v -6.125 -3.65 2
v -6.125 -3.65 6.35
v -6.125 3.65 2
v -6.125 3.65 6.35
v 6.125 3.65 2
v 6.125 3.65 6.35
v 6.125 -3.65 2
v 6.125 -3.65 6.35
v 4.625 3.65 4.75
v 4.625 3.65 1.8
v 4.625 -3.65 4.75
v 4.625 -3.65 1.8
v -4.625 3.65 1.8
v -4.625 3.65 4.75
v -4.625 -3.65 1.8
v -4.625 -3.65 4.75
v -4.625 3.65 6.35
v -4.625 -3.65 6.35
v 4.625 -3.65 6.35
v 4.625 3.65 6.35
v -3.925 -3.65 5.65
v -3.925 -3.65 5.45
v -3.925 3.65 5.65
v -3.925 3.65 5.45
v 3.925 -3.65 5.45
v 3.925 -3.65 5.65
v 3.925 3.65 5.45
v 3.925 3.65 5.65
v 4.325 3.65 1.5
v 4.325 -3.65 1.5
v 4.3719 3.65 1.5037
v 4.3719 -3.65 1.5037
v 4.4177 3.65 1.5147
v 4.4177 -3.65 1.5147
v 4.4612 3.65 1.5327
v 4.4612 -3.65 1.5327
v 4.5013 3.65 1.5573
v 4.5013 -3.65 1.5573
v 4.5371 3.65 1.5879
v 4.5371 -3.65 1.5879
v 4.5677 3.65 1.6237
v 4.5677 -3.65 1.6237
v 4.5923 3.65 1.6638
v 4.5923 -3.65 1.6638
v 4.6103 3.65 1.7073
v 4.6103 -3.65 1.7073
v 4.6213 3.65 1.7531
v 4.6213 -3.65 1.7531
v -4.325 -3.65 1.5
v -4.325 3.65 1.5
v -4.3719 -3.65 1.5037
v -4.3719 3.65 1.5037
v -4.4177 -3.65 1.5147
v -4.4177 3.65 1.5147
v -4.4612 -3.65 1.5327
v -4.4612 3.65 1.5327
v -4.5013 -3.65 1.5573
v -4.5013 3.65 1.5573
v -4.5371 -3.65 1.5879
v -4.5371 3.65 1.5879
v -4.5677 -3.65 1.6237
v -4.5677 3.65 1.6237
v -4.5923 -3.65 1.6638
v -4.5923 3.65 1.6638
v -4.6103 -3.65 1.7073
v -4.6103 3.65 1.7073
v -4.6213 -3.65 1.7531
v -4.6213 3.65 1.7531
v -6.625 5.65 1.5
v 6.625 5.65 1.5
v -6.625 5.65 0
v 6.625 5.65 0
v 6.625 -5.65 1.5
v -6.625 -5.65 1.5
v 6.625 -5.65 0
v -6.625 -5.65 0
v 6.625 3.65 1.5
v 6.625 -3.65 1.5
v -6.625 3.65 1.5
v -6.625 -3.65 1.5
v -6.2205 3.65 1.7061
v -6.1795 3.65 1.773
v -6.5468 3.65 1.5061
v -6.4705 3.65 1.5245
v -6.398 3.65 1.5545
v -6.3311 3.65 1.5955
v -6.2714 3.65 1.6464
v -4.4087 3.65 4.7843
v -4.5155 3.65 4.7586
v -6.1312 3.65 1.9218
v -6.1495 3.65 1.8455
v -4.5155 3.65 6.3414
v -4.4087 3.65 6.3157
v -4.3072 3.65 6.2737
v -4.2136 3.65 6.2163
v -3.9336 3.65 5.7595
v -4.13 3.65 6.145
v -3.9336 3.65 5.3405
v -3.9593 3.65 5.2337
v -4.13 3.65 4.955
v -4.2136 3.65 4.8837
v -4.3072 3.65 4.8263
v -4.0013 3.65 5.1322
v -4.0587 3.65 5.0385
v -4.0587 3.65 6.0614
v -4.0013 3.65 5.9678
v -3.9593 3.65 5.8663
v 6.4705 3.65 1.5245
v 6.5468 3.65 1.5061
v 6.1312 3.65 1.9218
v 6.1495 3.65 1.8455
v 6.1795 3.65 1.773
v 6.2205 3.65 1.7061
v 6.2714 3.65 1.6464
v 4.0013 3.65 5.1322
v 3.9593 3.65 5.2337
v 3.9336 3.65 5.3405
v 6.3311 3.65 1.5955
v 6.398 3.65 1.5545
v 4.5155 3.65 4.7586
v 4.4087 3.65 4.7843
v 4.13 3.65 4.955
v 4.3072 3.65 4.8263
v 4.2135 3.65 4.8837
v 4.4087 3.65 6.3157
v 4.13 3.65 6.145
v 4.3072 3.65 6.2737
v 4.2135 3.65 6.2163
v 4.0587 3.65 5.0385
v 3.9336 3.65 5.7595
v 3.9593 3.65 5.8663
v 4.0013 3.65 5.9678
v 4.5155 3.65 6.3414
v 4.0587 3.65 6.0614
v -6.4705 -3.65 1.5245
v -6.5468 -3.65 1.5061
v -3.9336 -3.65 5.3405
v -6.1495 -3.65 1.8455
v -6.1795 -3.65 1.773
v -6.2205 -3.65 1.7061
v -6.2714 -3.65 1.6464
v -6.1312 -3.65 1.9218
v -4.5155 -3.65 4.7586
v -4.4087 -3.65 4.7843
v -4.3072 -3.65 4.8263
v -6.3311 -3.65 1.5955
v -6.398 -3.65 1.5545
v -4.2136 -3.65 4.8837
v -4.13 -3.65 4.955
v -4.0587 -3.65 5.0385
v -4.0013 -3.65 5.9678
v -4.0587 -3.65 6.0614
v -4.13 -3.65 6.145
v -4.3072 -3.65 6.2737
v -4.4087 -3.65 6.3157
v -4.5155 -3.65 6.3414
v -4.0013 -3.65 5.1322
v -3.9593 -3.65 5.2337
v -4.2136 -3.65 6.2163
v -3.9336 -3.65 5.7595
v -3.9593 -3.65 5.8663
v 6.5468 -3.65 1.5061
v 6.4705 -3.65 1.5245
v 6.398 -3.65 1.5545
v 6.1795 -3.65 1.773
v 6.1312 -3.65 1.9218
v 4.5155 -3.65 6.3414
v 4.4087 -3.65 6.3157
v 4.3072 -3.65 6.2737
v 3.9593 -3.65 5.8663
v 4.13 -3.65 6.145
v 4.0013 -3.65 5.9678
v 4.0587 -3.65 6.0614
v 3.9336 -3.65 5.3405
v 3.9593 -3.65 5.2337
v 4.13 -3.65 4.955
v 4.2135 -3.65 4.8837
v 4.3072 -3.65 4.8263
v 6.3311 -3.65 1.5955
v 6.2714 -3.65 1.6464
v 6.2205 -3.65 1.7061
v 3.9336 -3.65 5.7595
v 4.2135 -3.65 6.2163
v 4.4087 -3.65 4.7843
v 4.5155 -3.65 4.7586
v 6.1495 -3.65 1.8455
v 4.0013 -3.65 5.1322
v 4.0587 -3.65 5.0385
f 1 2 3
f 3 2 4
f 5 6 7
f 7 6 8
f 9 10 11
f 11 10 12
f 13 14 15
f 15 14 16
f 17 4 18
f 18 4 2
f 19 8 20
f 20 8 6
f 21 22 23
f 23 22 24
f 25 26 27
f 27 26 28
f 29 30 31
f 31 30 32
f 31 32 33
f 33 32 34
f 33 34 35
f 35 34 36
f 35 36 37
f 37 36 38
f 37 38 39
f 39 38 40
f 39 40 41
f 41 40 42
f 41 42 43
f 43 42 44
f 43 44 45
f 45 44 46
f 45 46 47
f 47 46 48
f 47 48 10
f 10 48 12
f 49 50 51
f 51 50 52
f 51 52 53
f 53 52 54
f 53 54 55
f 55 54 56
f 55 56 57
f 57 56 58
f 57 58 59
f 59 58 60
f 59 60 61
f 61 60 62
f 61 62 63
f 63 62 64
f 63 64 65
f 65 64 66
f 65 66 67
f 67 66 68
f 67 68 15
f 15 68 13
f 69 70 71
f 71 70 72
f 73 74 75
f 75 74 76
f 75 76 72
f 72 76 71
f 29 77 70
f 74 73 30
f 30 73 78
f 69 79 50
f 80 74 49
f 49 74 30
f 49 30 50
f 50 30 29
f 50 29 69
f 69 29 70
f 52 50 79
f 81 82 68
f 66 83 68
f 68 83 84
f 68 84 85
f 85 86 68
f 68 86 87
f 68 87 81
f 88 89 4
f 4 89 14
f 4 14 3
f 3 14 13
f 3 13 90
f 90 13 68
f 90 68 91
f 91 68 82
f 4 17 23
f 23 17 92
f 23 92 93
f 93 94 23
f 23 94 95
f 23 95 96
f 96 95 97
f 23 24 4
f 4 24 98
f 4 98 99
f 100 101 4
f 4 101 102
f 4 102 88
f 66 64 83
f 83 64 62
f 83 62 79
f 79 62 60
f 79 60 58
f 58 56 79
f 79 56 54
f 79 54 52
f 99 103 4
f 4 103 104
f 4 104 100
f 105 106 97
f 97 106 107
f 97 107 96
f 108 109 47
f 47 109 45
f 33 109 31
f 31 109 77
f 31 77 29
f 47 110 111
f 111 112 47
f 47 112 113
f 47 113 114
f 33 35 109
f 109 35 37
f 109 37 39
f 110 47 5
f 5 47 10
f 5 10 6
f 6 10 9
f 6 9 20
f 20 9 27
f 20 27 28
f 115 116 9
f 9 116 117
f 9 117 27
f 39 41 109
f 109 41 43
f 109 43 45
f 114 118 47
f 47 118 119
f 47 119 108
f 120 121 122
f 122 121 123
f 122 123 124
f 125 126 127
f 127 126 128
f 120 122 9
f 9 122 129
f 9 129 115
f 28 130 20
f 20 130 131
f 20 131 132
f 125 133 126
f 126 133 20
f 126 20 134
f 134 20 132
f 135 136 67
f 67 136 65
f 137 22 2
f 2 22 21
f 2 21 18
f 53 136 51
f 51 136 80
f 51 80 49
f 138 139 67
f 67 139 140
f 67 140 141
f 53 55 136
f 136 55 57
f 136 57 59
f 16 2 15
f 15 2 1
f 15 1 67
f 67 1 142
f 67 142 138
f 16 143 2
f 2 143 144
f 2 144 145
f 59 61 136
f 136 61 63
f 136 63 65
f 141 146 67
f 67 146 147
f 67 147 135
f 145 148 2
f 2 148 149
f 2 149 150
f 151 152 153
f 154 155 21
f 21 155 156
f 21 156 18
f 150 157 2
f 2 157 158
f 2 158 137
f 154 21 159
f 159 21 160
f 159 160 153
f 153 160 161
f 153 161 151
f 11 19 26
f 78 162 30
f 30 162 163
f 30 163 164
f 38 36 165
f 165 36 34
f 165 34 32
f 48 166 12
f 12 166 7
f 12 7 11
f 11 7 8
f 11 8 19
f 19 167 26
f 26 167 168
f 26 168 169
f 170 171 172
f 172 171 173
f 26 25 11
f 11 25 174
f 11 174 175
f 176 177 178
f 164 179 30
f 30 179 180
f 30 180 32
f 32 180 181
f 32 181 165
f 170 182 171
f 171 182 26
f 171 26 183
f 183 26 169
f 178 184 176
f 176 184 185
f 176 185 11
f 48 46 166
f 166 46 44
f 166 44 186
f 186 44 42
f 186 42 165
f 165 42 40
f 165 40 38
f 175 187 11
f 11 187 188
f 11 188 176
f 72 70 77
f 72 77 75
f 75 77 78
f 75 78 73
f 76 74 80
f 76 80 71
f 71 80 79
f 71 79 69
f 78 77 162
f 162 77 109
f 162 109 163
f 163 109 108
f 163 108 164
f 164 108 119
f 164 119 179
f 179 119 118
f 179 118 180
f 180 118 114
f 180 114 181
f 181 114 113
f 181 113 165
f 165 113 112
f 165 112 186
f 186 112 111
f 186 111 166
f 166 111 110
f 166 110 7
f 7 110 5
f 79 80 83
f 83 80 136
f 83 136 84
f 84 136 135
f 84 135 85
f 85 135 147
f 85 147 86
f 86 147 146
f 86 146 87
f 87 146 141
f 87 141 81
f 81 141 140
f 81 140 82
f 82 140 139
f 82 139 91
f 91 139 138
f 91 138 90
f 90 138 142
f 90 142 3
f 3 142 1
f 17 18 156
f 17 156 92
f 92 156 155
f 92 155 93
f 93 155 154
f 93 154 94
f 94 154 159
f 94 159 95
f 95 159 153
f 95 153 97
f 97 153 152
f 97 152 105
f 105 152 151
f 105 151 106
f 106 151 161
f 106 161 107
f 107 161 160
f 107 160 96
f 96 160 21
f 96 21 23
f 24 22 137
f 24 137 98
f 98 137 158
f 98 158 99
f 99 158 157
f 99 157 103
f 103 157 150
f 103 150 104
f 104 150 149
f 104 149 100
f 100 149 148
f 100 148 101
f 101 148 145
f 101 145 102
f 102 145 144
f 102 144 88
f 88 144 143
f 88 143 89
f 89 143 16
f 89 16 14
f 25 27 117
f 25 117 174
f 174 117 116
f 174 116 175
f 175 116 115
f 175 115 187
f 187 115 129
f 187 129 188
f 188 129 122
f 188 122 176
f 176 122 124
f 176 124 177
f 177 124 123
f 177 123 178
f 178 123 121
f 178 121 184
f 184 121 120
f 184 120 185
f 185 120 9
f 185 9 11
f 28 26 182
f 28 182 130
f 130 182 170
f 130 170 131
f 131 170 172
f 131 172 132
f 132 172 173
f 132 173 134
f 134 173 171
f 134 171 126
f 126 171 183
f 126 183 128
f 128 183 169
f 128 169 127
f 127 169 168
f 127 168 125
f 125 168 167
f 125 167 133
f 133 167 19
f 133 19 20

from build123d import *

# Parameters (mm, degrees)
SKETCH_1_W          = 12.25
SKETCH_1_H          = 11.3
EXTRUDE_1_DEPTH     = 2.5
SKETCH_2_W          = 1.5
SKETCH_2_H          = 11.3
EXTRUDE_2_DEPTH     = 3.85
SKETCH_5_W          = 9.25
SKETCH_5_H          = 11.5
CUT_EXTRUDE_1_DEPTH = 1
SKETCH_8_W          = 1.6
SKETCH_8_H          = 11.3
EXTRUDE_5_DEPTH     = 0.7
SKETCH_9_W          = 1.6
SKETCH_9_H          = 11.3
EXTRUDE_6_DEPTH     = 0.7
FILLET_8_R          = 0.3
SKETCH_11_W         = 12.25
SKETCH_11_H         = 4.85
CUT_EXTRUDE_2_DEPTH = 2
SKETCH_12_W         = 12.25
SKETCH_12_H         = 4.85
CUT_EXTRUDE_3_DEPTH = 2
SKETCH_13_W         = 1.5
SKETCH_13_H         = 11.3
EXTRUDE_7_DEPTH     = 0.5
SKETCH_14_W         = 1.5
SKETCH_14_H         = 11.3
EXTRUDE_8_DEPTH     = 0.5
FILLET_9_R          = 0.5
FILLET_10_R         = 0.7


with BuildPart() as part:
    # 스케치1 → 보스-돌출1 (new body)
    with BuildSketch(Plane.XY):
        Rectangle(SKETCH_1_W, SKETCH_1_H)
    extrude(amount=EXTRUDE_1_DEPTH)

    # 스케치2 → 보스-돌출2 (add)
    with BuildSketch(Plane.XY.offset(2.5)):
        with Locations((-5.375, 0)):
            Rectangle(SKETCH_2_W, SKETCH_2_H)
        with Locations((5.375, 0)):
            Rectangle(SKETCH_2_W, SKETCH_2_H)
    extrude(amount=EXTRUDE_2_DEPTH)

    # 스케치5 → 컷-돌출1 (cut)
    with BuildSketch(Plane.XY.offset(2.5)):
        Rectangle(SKETCH_5_W, SKETCH_5_H)
    extrude(amount=-CUT_EXTRUDE_1_DEPTH, mode=Mode.SUBTRACT)

    # 스케치8 → 보스-돌출5 (add)
    with BuildSketch(Plane(origin=(-4.625, 0, 0), x_dir=(0, 0, -1), z_dir=(1, 0, 0))):
        with Locations((-5.55, 0)):
            Rectangle(SKETCH_8_W, SKETCH_8_H)
    extrude(amount=EXTRUDE_5_DEPTH)

    # 스케치9 → 보스-돌출6 (add)
    with BuildSketch(Plane.ZY.offset(-4.625)):
        with Locations((5.55, 0)):
            Rectangle(SKETCH_9_W, SKETCH_9_H)
    extrude(amount=EXTRUDE_6_DEPTH)

    # 필렛8
    fillet_8_edges = [part.edges().sort_by_distance(p)[0] for p in [
        (4.625, 0, 1.5),
        (-4.625, 0, 1.5),
    ]]
    fillet(fillet_8_edges, radius=FILLET_8_R)

    # 스케치11 → 컷-돌출2 (cut)
    with BuildSketch(Plane(origin=(0, 5.65, 0), x_dir=(1, 0, 0), z_dir=(0, 1, 0))):
        with Locations((0, -3.925)):
            Rectangle(SKETCH_11_W, SKETCH_11_H)
    extrude(amount=-CUT_EXTRUDE_2_DEPTH, mode=Mode.SUBTRACT)

    # 스케치12 → 컷-돌출3 (cut)
    with BuildSketch(Plane.XZ.offset(5.65)):
        with Locations((0, 3.925)):
            Rectangle(SKETCH_12_W, SKETCH_12_H)
    extrude(amount=-CUT_EXTRUDE_3_DEPTH, mode=Mode.SUBTRACT)

    # 스케치13 → 보스-돌출7 (add)
    with BuildSketch(Plane(origin=(6.125, 0, 0), x_dir=(0, 0, -1), z_dir=(1, 0, 0))):
        with Locations((-0.75, 0)):
            Rectangle(SKETCH_13_W, SKETCH_13_H)
    extrude(amount=EXTRUDE_7_DEPTH)

    # 스케치14 → 보스-돌출8 (add)
    with BuildSketch(Plane.ZY.offset(6.125)):
        with Locations((0.75, 0)):
            Rectangle(SKETCH_14_W, SKETCH_14_H)
    extrude(amount=EXTRUDE_8_DEPTH)

    # 필렛9
    fillet_9_edges = [part.edges().sort_by_distance(p)[0] for p in [
        (6.125, 0, 1.5),
        (-6.125, 0, 1.5),
    ]]
    fillet(fillet_9_edges, radius=FILLET_9_R - 0.0001)  # a hair under: the kernel refuses the full size

    # 필렛10
    fillet_10_edges = [part.edges().sort_by_distance(p)[0] for p in [
        (-3.925, 0, 6.35),
        (-3.925, 0, 4.75),
        (3.925, 0, 4.75),
        (3.925, 0, 6.35),
    ]]
    fillet(fillet_10_edges, radius=FILLET_10_R - 0.0001)  # a hair under: the kernel refuses the full size


solid = part.part
